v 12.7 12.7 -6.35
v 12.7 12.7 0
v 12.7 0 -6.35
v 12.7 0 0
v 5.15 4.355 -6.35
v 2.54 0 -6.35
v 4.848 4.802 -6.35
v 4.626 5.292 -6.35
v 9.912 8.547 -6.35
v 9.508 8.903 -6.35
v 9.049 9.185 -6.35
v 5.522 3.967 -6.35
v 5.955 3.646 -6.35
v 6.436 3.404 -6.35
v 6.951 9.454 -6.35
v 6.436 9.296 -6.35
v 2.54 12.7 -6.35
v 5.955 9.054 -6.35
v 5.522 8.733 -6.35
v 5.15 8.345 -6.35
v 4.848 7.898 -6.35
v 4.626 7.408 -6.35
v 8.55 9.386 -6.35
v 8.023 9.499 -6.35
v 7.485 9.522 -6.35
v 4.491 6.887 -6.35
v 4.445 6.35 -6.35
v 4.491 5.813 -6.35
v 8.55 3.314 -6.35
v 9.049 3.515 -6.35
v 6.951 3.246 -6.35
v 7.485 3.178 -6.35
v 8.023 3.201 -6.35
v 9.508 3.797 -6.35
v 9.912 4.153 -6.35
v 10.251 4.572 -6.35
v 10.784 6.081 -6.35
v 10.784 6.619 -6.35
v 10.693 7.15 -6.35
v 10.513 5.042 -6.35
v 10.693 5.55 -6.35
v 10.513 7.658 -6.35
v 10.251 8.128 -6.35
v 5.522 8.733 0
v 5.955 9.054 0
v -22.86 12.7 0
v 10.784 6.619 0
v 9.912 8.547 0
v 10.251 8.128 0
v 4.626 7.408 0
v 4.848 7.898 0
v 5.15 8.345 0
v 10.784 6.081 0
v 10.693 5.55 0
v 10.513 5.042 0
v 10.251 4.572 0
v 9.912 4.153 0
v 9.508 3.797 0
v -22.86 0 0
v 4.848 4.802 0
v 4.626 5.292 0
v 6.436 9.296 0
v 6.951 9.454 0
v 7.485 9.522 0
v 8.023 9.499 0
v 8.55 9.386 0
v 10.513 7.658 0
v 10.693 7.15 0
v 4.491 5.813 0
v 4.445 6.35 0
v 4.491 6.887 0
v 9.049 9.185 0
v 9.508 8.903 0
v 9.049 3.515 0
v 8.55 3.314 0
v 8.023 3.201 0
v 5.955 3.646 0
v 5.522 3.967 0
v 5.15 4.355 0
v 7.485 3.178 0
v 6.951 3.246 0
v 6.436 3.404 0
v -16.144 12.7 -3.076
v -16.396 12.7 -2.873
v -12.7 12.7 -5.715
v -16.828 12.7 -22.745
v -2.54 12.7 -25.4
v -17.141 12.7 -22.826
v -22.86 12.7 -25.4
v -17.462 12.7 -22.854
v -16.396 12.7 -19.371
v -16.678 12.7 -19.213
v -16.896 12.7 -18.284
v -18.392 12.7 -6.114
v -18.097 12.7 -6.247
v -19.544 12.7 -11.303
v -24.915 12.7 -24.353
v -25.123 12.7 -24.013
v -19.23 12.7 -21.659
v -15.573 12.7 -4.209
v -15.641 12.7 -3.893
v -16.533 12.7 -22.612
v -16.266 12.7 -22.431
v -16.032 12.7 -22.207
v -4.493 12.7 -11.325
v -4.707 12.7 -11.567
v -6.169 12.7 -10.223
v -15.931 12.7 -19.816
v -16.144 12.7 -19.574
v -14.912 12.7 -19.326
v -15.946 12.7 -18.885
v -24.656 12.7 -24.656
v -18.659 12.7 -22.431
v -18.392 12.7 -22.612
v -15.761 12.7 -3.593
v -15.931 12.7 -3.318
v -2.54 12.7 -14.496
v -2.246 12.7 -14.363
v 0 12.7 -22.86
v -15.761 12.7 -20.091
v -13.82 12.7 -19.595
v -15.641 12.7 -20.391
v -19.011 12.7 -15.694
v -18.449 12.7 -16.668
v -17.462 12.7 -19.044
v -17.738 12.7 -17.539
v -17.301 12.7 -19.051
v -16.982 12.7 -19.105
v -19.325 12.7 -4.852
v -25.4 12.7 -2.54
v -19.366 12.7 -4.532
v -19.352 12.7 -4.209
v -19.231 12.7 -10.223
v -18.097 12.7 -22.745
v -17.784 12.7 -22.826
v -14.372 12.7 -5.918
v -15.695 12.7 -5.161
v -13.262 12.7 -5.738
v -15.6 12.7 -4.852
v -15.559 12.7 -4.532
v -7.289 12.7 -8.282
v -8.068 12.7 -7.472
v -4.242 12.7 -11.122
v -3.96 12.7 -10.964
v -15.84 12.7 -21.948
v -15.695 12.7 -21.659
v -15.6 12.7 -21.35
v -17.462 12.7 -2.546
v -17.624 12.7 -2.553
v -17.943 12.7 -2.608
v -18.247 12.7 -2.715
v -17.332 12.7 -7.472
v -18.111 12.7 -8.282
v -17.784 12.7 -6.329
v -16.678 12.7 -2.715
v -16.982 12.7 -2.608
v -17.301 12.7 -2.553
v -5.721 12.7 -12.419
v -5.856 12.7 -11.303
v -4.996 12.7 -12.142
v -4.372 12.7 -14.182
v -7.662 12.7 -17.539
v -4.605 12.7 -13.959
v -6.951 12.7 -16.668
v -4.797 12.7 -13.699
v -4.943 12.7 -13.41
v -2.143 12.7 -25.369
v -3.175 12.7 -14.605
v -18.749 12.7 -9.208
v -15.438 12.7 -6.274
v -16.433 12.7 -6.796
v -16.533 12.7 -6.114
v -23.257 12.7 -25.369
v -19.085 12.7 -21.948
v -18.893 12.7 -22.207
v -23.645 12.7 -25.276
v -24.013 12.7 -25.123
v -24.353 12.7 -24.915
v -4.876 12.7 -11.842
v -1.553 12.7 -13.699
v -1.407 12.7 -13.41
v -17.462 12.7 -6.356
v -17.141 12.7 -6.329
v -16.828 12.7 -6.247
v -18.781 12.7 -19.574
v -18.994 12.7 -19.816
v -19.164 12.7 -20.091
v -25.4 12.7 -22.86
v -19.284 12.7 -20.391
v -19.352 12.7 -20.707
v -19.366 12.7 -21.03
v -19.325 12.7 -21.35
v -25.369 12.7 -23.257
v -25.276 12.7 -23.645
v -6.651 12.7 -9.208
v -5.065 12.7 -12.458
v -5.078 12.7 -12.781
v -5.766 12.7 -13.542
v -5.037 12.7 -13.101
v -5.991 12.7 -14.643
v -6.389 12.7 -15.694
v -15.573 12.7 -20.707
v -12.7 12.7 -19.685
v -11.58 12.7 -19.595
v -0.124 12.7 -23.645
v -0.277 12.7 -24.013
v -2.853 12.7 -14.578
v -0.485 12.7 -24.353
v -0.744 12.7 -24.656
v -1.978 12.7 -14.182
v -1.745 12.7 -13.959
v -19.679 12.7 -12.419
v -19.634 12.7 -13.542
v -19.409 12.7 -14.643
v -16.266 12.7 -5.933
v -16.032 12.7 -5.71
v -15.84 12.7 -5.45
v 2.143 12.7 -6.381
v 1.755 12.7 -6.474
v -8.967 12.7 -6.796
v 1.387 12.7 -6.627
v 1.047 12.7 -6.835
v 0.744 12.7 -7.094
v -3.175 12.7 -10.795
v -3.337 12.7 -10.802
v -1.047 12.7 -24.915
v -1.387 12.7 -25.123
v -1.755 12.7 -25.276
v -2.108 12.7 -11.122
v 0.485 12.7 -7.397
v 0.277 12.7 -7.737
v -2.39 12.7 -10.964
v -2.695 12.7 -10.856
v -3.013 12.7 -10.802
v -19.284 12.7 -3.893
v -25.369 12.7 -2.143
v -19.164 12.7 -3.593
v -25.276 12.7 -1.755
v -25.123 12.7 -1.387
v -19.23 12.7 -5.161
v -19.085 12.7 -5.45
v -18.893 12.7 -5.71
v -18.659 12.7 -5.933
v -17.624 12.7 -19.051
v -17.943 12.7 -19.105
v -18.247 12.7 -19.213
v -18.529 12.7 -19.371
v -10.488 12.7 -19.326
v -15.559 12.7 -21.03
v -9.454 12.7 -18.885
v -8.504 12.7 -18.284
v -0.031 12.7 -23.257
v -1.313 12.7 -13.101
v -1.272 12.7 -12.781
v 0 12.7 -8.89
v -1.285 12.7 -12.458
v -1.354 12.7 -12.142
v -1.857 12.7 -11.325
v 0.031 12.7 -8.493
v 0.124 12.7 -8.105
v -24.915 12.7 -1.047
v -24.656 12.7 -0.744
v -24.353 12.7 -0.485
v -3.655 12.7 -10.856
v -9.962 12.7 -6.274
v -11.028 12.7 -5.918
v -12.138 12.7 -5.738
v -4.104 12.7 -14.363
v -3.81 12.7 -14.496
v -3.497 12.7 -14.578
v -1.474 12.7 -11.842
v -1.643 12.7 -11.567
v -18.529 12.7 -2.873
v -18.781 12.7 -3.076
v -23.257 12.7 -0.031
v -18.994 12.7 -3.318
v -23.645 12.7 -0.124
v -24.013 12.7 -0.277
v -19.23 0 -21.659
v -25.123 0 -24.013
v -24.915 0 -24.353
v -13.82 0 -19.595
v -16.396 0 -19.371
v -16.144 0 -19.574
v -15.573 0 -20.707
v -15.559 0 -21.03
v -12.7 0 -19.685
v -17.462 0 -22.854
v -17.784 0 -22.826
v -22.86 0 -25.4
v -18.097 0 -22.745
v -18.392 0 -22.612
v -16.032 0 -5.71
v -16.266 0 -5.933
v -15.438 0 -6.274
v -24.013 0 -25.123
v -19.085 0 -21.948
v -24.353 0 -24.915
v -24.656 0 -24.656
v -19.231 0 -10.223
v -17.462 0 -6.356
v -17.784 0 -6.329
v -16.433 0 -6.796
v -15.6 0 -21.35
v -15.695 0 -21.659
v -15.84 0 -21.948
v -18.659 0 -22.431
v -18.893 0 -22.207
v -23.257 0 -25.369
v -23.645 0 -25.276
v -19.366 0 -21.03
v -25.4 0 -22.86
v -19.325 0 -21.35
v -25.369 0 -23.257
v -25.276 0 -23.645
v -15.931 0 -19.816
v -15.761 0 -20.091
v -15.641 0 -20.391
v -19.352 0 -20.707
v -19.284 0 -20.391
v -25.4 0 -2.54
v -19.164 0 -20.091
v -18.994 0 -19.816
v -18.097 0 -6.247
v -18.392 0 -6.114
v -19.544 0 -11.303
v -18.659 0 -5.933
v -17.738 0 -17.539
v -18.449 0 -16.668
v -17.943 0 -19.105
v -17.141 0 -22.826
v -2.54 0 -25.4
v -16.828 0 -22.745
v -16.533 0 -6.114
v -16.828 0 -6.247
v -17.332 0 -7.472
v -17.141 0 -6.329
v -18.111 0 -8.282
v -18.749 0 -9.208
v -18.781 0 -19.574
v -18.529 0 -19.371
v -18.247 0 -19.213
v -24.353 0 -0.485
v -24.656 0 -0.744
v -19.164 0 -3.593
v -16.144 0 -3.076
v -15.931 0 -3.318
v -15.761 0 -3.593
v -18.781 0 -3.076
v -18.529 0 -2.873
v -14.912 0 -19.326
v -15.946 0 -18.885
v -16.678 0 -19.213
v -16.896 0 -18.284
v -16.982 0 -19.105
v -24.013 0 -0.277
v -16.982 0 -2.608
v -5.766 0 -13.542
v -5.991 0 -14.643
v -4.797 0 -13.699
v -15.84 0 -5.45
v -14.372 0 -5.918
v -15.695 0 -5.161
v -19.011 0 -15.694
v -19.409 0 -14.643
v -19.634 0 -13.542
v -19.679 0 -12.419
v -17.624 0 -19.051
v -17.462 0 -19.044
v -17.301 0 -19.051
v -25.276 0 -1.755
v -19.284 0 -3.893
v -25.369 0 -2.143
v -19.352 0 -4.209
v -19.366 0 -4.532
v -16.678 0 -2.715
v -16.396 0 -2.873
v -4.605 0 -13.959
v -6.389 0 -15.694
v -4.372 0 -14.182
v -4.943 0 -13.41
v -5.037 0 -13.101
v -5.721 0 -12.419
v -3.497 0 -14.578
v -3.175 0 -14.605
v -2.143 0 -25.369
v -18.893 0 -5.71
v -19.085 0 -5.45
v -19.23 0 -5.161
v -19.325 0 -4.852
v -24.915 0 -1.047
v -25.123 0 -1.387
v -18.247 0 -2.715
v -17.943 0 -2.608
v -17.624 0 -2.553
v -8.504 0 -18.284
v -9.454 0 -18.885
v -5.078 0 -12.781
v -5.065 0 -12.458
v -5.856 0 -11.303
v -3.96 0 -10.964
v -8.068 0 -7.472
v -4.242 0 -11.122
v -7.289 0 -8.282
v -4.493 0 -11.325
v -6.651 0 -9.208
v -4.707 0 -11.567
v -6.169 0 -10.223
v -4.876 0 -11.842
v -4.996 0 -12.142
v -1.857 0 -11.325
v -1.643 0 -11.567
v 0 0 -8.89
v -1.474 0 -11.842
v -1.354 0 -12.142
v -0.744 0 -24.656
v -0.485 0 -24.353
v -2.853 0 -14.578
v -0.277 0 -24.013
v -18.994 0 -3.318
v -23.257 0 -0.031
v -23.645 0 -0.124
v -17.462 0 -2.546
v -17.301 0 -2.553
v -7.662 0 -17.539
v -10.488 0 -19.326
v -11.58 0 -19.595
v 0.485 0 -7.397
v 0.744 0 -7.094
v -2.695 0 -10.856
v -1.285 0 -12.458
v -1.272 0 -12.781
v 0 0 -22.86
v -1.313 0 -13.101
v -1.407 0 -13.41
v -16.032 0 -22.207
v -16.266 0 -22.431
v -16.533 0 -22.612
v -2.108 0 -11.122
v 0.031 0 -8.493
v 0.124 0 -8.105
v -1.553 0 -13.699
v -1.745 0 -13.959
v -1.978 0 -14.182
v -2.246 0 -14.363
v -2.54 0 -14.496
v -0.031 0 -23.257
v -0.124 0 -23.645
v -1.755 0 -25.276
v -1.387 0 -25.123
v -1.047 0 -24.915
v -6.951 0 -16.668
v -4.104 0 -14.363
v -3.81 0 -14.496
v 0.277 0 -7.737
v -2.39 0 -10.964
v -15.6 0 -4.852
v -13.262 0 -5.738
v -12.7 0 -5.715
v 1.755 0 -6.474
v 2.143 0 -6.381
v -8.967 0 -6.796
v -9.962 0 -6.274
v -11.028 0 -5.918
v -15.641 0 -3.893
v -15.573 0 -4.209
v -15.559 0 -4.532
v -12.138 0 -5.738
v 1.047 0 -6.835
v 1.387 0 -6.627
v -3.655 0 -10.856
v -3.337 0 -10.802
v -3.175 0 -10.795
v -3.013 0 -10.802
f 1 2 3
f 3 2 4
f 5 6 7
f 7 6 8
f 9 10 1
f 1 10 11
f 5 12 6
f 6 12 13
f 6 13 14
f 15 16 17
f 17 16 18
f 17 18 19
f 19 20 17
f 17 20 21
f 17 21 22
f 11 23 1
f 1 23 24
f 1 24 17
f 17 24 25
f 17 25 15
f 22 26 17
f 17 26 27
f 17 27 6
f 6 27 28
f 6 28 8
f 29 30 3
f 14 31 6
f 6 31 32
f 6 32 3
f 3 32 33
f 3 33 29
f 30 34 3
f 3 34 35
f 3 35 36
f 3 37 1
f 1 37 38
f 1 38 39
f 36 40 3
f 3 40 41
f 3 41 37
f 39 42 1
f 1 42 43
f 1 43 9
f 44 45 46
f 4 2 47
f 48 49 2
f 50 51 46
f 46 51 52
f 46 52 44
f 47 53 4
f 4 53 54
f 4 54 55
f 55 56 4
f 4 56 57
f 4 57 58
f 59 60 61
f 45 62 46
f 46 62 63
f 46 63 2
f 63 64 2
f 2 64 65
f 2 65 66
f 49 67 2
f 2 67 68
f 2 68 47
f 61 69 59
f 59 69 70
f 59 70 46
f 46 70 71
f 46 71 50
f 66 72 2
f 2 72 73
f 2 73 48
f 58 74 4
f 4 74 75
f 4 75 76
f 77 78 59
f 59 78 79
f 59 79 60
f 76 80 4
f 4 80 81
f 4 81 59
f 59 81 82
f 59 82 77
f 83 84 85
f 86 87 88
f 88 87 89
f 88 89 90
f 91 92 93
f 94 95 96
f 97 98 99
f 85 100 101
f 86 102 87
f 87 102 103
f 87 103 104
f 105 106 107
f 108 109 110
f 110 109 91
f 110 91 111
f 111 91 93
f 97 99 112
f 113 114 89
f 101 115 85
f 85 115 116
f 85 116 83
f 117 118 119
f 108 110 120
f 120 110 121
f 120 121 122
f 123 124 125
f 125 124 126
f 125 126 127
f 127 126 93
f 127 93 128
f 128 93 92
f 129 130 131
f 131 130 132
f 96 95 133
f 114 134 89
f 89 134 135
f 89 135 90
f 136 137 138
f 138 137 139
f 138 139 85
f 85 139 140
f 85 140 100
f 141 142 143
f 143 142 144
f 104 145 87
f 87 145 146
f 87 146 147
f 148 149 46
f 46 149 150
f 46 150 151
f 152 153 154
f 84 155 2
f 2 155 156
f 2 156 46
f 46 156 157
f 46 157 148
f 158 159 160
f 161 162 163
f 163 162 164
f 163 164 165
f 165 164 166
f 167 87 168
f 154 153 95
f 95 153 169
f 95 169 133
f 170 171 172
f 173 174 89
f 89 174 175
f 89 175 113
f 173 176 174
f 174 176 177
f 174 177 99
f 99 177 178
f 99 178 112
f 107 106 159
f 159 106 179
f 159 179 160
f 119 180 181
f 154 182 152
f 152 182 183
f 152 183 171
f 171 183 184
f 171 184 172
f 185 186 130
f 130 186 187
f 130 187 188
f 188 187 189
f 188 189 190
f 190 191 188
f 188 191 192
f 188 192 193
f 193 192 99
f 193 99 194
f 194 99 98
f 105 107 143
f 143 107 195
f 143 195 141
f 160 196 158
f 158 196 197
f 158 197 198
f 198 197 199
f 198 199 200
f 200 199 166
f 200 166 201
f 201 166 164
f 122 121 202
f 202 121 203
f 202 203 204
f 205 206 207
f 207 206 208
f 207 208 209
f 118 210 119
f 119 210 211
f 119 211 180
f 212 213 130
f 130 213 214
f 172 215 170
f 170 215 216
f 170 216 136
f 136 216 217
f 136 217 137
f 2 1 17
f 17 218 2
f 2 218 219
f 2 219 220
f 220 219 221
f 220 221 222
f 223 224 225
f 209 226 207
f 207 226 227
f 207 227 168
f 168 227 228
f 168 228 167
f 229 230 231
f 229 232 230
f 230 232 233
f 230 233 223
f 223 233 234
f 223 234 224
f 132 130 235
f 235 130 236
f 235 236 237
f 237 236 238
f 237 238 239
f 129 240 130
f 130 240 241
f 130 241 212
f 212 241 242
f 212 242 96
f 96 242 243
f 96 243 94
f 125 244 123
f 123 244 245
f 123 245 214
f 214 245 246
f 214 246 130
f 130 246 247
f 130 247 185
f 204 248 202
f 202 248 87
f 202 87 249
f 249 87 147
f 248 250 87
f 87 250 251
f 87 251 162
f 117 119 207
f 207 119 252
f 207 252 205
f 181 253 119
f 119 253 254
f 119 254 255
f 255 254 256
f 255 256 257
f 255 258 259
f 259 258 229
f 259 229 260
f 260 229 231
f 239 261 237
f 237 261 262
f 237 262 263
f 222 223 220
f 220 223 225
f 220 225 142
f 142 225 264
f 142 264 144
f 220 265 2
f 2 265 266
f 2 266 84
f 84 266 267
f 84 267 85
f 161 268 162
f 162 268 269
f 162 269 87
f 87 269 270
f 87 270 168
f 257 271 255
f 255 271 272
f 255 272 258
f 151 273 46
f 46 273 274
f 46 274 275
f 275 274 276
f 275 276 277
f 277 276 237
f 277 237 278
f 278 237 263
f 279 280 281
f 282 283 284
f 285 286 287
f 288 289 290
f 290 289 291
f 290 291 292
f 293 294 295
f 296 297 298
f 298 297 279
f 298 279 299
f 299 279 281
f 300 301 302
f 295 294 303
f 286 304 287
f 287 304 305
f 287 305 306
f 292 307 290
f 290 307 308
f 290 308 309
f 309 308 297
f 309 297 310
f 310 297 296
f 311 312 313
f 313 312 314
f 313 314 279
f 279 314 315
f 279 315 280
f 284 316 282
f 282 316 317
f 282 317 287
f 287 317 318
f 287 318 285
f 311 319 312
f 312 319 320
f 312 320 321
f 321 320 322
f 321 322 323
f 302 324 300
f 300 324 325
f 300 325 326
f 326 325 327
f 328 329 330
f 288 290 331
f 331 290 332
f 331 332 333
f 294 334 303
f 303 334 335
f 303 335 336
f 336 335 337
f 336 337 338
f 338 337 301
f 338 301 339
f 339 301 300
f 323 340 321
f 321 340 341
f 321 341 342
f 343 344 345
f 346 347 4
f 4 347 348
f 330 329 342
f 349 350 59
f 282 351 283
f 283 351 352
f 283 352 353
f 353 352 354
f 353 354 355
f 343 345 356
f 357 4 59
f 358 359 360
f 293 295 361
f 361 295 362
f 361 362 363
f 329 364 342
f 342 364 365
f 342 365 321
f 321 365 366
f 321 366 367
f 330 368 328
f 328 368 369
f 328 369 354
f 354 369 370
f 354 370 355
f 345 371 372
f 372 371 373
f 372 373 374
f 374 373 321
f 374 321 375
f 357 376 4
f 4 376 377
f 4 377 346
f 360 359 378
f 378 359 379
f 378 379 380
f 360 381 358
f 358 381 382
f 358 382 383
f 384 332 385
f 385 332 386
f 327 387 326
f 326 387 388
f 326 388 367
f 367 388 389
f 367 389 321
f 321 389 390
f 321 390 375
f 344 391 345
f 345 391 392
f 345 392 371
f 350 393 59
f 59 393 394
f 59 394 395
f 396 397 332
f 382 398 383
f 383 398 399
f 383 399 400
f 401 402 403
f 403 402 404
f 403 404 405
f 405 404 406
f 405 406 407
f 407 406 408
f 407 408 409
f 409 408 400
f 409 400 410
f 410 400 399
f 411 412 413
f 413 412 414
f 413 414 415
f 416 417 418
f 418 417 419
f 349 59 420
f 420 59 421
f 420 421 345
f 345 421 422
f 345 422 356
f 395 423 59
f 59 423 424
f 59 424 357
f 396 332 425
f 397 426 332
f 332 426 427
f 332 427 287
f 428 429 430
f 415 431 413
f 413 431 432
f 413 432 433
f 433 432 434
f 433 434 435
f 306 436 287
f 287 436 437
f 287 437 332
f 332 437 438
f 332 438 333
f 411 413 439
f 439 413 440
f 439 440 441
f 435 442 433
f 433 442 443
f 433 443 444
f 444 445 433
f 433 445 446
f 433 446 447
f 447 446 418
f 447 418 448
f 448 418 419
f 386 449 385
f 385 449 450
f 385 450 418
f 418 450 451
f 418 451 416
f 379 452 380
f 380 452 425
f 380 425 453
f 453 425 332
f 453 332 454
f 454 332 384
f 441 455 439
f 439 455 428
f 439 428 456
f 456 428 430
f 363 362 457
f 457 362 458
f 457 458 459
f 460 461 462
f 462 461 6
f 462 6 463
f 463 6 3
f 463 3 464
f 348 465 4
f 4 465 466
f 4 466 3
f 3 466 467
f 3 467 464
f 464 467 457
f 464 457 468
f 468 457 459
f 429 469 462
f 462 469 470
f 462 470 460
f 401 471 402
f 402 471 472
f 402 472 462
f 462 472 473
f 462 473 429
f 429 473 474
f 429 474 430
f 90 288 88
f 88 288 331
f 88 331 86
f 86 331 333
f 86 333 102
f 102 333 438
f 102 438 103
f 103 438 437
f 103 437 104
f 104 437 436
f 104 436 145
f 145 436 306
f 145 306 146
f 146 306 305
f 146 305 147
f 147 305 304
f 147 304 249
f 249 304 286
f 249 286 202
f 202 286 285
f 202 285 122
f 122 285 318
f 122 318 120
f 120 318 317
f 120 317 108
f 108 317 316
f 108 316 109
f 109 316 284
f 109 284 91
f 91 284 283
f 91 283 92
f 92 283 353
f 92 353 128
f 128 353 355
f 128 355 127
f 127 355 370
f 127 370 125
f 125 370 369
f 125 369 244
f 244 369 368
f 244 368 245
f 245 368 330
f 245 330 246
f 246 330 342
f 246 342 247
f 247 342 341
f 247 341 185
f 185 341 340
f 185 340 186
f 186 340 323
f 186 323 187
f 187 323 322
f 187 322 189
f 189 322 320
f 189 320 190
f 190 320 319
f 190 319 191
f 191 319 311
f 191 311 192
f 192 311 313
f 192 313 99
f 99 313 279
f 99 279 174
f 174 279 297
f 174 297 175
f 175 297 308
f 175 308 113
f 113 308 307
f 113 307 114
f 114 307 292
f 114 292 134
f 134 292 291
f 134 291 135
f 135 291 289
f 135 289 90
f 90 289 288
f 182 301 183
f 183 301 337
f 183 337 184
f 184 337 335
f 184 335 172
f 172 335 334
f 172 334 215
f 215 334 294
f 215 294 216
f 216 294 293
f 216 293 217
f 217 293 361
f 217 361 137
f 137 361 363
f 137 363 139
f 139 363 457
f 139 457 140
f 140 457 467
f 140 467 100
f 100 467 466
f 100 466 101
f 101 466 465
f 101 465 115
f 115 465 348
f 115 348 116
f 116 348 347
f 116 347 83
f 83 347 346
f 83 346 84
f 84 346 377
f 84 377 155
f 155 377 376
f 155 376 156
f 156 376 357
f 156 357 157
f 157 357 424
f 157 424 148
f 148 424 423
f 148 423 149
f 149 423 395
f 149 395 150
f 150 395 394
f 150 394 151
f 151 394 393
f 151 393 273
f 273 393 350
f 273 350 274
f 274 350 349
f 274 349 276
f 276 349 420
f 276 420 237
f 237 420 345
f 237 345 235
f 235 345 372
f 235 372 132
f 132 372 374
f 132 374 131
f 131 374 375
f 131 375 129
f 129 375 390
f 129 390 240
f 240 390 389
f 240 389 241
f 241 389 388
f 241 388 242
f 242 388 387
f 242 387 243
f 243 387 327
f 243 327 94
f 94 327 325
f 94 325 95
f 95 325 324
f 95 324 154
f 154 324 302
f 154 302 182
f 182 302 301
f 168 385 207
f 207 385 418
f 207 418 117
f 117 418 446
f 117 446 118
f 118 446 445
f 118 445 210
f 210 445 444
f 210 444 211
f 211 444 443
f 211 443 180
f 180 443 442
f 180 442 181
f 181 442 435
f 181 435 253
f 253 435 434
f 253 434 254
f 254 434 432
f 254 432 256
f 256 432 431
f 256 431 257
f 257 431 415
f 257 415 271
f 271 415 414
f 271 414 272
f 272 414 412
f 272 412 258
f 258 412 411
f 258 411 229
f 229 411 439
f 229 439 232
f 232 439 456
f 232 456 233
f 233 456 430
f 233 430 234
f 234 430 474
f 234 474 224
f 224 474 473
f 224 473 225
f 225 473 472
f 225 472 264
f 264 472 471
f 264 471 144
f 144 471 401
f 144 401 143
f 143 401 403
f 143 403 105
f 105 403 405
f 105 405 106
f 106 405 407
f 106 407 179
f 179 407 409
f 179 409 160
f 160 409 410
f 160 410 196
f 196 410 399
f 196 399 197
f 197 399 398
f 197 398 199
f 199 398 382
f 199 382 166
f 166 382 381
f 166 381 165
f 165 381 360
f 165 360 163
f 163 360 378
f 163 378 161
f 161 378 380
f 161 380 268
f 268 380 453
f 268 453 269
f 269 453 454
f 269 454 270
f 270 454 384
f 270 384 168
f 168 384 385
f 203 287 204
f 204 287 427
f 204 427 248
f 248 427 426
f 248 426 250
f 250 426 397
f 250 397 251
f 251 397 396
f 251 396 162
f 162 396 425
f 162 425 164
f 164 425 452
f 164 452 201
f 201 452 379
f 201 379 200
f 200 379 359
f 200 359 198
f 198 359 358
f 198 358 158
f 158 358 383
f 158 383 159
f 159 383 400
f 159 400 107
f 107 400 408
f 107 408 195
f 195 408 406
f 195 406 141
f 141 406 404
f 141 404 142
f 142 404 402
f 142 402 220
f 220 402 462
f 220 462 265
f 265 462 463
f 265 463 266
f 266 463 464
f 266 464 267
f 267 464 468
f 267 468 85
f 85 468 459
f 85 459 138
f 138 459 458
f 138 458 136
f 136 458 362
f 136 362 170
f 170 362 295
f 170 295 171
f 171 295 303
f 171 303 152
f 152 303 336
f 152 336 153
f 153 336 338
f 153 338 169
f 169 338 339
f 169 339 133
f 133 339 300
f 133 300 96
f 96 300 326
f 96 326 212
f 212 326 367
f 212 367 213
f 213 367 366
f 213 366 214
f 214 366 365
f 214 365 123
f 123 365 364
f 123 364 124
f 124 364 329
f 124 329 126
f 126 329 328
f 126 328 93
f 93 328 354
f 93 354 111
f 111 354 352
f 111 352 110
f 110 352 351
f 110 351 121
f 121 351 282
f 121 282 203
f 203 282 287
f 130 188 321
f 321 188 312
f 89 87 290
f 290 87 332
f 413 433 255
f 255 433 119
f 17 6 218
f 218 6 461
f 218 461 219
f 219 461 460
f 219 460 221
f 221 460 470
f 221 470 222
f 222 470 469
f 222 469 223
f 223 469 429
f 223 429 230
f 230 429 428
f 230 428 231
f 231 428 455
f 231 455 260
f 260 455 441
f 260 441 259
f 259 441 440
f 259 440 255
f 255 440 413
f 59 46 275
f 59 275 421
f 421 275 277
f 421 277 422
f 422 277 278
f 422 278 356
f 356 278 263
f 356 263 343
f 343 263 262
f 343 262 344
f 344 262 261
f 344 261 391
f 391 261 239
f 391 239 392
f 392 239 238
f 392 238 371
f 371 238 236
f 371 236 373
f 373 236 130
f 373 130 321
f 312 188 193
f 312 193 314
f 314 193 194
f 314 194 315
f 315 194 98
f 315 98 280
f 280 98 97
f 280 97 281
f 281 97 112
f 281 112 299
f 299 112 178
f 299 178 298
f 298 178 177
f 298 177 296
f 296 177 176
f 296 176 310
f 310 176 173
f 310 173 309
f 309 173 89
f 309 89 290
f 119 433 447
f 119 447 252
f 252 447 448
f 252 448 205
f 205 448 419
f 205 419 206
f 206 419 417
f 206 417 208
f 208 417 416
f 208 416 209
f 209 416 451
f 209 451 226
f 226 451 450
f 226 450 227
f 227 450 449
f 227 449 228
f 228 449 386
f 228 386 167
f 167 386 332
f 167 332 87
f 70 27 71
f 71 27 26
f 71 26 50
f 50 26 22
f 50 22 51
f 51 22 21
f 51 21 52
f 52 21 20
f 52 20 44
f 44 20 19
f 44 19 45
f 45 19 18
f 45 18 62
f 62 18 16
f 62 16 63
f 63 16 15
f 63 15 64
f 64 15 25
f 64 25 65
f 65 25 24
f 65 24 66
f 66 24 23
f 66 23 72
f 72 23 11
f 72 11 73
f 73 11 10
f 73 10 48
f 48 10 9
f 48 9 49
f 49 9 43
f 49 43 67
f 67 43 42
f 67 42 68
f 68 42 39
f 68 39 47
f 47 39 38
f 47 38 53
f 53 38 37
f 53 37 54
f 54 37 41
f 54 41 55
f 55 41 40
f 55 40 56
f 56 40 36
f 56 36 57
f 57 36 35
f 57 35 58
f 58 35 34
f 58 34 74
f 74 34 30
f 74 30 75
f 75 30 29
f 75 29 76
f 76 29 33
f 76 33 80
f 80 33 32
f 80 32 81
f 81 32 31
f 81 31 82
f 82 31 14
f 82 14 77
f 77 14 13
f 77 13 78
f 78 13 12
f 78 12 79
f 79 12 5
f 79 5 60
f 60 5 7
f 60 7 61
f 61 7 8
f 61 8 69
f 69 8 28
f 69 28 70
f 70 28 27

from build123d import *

# Parameters (mm, degrees)
SKETCH1_R           = 1.905
SKETCH1_R_2         = 6.985
BOSS_EXTRUDE1_DEPTH = 12.7
FILLET1_R           = 2.54
SKETCH2_R           = 3.175
CUT_EXTRUDE1_DEPTH  = 7.35


with BuildPart() as part:
    # Sketch1 → Boss-Extrude1 (new body)
    with BuildSketch(Plane(origin=(0, 0, 0), x_dir=(1, 0, 0), z_dir=(0, 1, 0))):
        Polygon((-25.4, 0), (12.7, 0), (12.7, 6.35), (0, 6.35), (0, 25.4), (-25.4, 25.4), align=None)
        with Locations((-17.4625, 4.451108029)):
            Circle(SKETCH1_R, mode=Mode.SUBTRACT)
        with Locations((-3.175, 12.7)):
            Circle(SKETCH1_R, mode=Mode.SUBTRACT)
        with Locations((-12.7, 12.7)):
            Circle(SKETCH1_R_2, mode=Mode.SUBTRACT)
        with Locations((-17.4625, 20.948891971)):
            Circle(SKETCH1_R, mode=Mode.SUBTRACT)
    extrude(amount=BOSS_EXTRUDE1_DEPTH)

    # Fillet1
    fillet1_edges = [part.edges().sort_by_distance(p)[0] for p in [
        (0, 6.35, -6.35),
        (0, 6.35, -25.4),
        (-25.4, 6.35, -25.4),
        (-25.4, 6.35, 0),
    ]]
    fillet(fillet1_edges, radius=FILLET1_R)

    # Sketch2 → Cut-Extrude1 (cut, through all)
    with BuildSketch(Plane(origin=(0, 0, -6.35), x_dir=(-1, 0, 0), z_dir=(0, 0, -1))):
        with Locations((-7.62, 6.35)):
            Circle(SKETCH2_R)
    extrude(amount=-CUT_EXTRUDE1_DEPTH, mode=Mode.SUBTRACT)


solid = part.part
